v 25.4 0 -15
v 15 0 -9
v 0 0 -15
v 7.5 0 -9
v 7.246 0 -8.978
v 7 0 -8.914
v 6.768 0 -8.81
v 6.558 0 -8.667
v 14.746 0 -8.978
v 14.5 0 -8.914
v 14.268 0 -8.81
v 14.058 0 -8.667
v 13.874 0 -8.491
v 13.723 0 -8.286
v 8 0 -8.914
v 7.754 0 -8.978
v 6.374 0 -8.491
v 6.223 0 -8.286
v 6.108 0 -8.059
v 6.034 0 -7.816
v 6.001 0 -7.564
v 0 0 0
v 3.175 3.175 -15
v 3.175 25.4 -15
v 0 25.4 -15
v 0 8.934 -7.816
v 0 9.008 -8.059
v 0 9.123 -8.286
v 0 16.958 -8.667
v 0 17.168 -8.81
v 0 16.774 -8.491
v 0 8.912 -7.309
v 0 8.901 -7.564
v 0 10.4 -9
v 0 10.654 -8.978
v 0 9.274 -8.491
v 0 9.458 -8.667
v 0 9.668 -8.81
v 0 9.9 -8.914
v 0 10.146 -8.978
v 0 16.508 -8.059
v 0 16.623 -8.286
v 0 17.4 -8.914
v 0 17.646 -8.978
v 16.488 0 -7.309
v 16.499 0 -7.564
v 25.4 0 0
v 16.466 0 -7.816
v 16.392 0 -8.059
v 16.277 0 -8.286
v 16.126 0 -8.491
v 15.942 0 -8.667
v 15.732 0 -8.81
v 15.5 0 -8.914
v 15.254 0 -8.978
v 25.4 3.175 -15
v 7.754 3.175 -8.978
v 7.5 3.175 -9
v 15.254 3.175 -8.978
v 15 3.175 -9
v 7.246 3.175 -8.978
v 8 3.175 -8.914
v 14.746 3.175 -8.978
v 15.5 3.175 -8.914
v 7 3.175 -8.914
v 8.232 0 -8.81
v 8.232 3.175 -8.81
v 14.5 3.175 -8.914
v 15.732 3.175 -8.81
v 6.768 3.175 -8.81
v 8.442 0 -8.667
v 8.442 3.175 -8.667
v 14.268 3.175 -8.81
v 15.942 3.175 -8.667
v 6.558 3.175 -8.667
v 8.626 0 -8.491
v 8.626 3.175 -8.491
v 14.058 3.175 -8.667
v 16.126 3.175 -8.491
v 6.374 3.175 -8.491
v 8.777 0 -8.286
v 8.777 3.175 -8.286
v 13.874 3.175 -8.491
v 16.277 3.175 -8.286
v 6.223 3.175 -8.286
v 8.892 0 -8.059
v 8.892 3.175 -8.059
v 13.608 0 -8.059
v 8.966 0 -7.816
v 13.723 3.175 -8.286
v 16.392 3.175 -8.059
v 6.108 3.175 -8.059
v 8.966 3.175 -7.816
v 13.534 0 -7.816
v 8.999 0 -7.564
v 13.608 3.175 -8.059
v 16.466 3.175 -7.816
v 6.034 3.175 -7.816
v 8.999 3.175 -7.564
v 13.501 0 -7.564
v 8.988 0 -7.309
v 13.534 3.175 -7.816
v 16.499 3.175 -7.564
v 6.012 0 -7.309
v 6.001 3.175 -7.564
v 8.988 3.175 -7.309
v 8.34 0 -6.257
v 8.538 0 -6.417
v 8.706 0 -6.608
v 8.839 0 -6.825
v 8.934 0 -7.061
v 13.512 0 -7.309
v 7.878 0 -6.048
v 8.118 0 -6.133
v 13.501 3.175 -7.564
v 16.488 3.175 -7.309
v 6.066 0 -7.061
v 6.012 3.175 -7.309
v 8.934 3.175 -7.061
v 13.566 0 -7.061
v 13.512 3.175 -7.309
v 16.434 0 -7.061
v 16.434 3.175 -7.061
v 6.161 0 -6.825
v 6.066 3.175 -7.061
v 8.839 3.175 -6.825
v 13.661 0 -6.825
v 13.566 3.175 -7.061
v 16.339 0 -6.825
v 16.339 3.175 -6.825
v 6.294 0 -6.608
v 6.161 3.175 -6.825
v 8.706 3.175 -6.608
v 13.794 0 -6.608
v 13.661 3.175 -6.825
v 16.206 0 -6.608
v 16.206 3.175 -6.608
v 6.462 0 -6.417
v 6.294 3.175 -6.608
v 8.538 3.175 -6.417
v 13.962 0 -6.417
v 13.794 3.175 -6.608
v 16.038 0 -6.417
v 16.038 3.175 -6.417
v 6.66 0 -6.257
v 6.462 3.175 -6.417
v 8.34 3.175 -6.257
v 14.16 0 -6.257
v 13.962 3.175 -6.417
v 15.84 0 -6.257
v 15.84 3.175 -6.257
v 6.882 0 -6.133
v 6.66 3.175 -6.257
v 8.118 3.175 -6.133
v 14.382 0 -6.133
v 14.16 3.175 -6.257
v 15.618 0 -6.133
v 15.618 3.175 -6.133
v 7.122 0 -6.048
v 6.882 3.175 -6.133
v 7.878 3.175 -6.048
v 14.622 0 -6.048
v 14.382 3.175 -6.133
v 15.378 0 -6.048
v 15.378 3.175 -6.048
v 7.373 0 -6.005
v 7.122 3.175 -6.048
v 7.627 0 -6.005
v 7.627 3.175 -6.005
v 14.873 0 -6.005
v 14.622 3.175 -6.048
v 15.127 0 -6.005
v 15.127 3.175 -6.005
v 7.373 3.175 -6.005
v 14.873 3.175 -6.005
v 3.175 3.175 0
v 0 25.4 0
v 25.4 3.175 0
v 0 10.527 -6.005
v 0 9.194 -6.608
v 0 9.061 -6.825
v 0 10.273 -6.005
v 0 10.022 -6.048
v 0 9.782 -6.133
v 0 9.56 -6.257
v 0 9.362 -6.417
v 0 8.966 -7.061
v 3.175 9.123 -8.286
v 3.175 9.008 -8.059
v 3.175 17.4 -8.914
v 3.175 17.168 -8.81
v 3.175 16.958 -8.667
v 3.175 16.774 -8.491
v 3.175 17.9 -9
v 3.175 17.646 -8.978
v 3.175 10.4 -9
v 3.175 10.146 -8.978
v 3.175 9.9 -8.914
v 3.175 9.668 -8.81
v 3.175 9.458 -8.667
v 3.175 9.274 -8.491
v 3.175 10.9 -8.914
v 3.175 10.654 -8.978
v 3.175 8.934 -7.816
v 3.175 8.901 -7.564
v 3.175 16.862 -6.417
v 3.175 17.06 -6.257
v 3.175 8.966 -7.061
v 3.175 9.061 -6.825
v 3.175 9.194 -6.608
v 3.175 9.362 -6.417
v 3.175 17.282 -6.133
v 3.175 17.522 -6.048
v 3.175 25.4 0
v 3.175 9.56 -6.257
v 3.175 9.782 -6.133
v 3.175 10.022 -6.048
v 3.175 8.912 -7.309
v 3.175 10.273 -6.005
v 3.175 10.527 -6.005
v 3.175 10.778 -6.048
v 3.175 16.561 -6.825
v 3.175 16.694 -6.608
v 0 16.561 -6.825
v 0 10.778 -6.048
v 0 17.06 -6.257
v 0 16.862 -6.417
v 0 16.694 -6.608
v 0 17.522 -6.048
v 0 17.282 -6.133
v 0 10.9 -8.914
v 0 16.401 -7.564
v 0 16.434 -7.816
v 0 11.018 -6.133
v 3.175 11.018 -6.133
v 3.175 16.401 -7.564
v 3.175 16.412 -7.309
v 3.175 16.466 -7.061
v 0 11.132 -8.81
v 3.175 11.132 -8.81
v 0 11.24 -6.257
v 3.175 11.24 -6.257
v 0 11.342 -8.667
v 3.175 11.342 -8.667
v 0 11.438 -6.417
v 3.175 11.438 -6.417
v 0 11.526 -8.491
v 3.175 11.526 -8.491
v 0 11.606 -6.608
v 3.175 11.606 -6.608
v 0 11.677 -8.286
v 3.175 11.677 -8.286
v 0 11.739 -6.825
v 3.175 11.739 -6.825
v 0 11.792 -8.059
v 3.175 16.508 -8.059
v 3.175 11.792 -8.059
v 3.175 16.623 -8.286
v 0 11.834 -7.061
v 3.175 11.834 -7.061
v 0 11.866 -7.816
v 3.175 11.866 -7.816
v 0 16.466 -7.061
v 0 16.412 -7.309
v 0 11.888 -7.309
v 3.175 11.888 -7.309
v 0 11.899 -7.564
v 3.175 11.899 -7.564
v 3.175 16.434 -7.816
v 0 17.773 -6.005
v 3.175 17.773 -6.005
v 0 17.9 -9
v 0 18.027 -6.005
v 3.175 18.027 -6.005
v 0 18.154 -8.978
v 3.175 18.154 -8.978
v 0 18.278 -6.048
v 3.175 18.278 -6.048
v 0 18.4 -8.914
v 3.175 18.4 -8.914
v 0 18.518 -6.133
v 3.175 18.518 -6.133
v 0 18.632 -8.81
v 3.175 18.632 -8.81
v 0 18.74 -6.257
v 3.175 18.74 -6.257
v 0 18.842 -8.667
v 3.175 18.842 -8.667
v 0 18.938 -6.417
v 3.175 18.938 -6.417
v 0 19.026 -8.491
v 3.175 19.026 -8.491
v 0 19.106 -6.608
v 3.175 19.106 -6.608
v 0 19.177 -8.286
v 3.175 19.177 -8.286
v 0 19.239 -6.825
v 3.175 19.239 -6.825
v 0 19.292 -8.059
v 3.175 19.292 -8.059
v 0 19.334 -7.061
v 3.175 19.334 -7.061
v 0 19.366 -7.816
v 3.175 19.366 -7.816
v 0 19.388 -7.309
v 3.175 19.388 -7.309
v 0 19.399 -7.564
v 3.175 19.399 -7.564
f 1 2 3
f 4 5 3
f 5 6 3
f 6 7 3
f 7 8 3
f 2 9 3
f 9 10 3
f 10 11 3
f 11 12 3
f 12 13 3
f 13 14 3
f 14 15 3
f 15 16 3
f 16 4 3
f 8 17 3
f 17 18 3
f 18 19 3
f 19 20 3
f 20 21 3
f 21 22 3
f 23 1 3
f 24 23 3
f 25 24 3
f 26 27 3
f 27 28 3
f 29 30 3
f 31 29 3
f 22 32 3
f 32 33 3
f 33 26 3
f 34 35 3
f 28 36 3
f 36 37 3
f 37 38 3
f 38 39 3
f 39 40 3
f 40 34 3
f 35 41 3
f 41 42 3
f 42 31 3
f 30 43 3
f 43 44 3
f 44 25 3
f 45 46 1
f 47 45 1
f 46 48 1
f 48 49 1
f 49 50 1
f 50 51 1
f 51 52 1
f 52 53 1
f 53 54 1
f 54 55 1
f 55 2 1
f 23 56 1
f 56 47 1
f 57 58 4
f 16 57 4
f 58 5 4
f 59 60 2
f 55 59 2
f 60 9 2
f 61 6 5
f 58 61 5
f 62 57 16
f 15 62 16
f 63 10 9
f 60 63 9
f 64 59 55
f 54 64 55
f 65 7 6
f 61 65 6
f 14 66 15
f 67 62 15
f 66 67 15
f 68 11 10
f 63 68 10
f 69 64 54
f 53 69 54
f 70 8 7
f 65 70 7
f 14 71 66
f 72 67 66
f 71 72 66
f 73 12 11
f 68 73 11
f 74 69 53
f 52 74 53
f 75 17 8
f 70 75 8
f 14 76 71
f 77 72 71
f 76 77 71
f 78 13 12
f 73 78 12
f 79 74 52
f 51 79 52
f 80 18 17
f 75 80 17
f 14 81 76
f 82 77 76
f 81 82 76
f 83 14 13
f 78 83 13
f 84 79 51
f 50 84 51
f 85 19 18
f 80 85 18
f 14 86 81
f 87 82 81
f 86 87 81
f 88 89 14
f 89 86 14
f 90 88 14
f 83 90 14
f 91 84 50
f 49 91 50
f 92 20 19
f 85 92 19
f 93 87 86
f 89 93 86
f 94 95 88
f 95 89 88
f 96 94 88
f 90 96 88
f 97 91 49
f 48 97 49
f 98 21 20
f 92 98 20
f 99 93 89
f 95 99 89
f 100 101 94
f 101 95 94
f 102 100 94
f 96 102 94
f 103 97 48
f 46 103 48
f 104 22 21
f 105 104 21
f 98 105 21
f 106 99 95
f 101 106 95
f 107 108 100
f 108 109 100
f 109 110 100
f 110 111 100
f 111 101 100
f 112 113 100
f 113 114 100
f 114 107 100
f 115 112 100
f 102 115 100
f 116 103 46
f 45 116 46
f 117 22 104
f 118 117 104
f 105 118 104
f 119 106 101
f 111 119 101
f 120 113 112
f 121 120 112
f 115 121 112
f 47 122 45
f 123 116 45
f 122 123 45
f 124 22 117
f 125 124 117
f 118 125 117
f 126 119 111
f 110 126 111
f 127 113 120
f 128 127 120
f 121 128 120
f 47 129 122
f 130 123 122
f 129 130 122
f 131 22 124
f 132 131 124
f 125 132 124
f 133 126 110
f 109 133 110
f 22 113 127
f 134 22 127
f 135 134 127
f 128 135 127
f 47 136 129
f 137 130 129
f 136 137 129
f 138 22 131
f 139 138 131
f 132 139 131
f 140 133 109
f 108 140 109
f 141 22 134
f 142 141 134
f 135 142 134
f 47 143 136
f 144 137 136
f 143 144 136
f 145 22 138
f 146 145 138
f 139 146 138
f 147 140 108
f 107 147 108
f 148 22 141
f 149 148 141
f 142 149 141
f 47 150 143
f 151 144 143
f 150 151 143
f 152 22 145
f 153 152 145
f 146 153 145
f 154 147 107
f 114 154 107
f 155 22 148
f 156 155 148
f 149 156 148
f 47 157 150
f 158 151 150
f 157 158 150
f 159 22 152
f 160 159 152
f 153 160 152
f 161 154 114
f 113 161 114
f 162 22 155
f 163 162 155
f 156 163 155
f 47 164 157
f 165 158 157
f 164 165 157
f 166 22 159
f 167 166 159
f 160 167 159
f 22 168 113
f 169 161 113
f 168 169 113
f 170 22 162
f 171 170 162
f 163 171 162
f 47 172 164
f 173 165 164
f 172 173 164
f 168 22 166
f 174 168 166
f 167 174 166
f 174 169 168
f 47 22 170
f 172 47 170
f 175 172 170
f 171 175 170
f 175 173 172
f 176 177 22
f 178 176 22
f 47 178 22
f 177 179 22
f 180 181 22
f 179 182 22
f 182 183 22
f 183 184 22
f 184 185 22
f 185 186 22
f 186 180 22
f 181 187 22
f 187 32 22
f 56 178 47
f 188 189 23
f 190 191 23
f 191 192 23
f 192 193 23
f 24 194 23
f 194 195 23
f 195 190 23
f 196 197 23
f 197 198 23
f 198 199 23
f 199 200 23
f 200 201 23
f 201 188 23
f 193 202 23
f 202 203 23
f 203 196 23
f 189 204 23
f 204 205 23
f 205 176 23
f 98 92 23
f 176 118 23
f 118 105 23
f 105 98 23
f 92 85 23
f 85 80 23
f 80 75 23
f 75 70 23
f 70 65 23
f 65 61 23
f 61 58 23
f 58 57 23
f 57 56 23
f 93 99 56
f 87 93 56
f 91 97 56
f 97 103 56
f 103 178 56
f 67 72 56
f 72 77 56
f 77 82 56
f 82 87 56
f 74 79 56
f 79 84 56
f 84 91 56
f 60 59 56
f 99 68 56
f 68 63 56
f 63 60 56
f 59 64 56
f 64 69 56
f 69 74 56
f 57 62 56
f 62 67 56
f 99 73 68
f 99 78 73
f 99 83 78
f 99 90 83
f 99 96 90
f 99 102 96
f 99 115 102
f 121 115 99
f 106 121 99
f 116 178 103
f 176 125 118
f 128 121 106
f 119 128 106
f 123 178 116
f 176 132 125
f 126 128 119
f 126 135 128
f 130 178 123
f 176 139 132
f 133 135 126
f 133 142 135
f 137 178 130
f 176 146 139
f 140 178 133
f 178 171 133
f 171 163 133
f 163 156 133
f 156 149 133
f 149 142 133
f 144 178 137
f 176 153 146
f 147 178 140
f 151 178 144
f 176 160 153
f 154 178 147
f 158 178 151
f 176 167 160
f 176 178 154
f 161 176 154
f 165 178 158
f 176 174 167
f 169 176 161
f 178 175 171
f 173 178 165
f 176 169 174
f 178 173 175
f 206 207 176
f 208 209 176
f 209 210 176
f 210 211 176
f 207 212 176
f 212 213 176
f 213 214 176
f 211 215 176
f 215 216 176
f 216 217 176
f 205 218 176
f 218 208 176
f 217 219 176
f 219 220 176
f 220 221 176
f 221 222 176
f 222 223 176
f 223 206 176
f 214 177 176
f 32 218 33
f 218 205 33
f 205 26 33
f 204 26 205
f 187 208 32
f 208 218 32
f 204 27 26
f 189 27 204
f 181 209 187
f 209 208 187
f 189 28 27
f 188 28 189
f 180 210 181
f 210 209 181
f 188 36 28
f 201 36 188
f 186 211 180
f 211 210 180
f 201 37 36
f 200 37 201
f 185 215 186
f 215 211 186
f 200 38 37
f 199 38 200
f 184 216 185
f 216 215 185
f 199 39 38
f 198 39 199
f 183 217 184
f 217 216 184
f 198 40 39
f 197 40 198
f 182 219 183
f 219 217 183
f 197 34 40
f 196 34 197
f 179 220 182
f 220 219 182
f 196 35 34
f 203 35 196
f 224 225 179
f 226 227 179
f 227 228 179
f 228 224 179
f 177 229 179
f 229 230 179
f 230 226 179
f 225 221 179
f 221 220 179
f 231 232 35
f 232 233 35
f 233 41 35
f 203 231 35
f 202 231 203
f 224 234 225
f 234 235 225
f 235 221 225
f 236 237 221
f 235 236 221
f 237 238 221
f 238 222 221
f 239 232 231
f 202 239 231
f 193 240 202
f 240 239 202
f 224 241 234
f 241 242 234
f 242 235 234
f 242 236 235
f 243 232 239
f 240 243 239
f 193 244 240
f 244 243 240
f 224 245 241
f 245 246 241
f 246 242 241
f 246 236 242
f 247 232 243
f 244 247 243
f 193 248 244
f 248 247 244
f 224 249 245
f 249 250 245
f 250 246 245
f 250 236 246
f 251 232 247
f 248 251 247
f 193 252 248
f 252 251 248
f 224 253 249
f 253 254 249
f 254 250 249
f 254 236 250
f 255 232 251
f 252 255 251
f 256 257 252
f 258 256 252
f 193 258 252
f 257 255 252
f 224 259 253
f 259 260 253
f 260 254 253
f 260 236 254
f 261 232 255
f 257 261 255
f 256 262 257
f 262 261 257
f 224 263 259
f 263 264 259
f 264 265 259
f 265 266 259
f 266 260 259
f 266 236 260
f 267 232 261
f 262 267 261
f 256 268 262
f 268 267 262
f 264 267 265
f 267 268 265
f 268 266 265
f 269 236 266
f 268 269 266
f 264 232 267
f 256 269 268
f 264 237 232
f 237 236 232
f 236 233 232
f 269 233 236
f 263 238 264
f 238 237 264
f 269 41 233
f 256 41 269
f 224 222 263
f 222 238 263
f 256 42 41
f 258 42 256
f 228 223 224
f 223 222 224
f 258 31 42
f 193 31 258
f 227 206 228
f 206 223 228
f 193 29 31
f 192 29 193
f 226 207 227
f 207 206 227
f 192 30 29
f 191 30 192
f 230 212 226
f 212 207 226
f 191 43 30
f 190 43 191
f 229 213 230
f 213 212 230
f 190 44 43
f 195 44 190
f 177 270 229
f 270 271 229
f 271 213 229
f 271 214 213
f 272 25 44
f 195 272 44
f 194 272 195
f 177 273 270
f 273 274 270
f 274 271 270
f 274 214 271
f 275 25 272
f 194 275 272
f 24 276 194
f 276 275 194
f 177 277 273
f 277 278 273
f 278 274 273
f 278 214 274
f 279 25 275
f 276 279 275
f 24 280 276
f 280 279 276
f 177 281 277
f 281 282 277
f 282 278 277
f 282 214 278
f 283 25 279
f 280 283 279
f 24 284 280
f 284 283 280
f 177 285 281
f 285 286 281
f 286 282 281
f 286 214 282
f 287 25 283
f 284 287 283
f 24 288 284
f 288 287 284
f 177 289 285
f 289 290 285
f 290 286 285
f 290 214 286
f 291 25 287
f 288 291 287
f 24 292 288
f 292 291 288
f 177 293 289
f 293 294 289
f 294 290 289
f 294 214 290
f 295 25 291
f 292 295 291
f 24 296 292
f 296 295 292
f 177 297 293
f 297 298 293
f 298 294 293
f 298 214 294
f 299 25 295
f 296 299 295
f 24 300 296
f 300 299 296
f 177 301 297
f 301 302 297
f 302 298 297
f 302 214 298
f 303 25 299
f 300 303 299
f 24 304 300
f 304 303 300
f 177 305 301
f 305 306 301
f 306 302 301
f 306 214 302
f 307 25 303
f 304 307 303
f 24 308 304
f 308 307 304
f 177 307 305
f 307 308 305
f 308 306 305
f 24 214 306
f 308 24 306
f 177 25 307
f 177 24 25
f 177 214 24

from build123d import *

# Parameters (mm, degrees)
SKETCH1_W           = 15
SKETCH1_H           = 25.4
BOSS_EXTRUDE1_DEPTH = 3.175
SKETCH2_W           = 15
SKETCH2_H           = 3.175
BOSS_EXTRUDE2_DEPTH = 22.225
SKETCH3_R           = 1.5
CUT_EXTRUDE2_DEPTH  = 39.927111375
SKETCH4_R           = 1.5
CUT_EXTRUDE3_DEPTH  = 37.933868265


with BuildPart() as part:
    # Sketch1 → Boss-Extrude1 (new body)
    with BuildSketch(Plane(origin=(0, 0, 0), x_dir=(0, 0, -1), z_dir=(1, 0, 0))):
        with Locations((7.5, 12.7)):
            Rectangle(SKETCH1_W, SKETCH1_H)
    extrude(amount=BOSS_EXTRUDE1_DEPTH)

    # Sketch2 → Boss-Extrude2 (add)
    with BuildSketch(Plane(origin=(3.175, 0, 0), x_dir=(0, 0, -1), z_dir=(1, 0, 0))):
        with Locations((7.5, 1.5875)):
            Rectangle(SKETCH2_W, SKETCH2_H)
    extrude(amount=BOSS_EXTRUDE2_DEPTH)

    # Sketch3 → Cut-Extrude2 (cut, through all)
    with BuildSketch(Plane.XZ):
        with Locations(Location((7.5, -7.5, 0), (0, 0, 270))):
            Circle(SKETCH3_R)
        with Locations(Location((15, -7.5, 0), (0, 0, 270))):
            Circle(SKETCH3_R)
    extrude(amount=-CUT_EXTRUDE2_DEPTH, mode=Mode.SUBTRACT)

    # Sketch4 → Cut-Extrude3 (cut, through all)
    with BuildSketch(Plane(origin=(3.175, 0, 0), x_dir=(0, 0, -1), z_dir=(1, 0, 0))):
        with Locations((7.5, 17.9)):
            Circle(SKETCH4_R)
        with Locations((7.5, 10.4)):
            Circle(SKETCH4_R)
    extrude(amount=-CUT_EXTRUDE3_DEPTH, mode=Mode.SUBTRACT)


solid = part.part
